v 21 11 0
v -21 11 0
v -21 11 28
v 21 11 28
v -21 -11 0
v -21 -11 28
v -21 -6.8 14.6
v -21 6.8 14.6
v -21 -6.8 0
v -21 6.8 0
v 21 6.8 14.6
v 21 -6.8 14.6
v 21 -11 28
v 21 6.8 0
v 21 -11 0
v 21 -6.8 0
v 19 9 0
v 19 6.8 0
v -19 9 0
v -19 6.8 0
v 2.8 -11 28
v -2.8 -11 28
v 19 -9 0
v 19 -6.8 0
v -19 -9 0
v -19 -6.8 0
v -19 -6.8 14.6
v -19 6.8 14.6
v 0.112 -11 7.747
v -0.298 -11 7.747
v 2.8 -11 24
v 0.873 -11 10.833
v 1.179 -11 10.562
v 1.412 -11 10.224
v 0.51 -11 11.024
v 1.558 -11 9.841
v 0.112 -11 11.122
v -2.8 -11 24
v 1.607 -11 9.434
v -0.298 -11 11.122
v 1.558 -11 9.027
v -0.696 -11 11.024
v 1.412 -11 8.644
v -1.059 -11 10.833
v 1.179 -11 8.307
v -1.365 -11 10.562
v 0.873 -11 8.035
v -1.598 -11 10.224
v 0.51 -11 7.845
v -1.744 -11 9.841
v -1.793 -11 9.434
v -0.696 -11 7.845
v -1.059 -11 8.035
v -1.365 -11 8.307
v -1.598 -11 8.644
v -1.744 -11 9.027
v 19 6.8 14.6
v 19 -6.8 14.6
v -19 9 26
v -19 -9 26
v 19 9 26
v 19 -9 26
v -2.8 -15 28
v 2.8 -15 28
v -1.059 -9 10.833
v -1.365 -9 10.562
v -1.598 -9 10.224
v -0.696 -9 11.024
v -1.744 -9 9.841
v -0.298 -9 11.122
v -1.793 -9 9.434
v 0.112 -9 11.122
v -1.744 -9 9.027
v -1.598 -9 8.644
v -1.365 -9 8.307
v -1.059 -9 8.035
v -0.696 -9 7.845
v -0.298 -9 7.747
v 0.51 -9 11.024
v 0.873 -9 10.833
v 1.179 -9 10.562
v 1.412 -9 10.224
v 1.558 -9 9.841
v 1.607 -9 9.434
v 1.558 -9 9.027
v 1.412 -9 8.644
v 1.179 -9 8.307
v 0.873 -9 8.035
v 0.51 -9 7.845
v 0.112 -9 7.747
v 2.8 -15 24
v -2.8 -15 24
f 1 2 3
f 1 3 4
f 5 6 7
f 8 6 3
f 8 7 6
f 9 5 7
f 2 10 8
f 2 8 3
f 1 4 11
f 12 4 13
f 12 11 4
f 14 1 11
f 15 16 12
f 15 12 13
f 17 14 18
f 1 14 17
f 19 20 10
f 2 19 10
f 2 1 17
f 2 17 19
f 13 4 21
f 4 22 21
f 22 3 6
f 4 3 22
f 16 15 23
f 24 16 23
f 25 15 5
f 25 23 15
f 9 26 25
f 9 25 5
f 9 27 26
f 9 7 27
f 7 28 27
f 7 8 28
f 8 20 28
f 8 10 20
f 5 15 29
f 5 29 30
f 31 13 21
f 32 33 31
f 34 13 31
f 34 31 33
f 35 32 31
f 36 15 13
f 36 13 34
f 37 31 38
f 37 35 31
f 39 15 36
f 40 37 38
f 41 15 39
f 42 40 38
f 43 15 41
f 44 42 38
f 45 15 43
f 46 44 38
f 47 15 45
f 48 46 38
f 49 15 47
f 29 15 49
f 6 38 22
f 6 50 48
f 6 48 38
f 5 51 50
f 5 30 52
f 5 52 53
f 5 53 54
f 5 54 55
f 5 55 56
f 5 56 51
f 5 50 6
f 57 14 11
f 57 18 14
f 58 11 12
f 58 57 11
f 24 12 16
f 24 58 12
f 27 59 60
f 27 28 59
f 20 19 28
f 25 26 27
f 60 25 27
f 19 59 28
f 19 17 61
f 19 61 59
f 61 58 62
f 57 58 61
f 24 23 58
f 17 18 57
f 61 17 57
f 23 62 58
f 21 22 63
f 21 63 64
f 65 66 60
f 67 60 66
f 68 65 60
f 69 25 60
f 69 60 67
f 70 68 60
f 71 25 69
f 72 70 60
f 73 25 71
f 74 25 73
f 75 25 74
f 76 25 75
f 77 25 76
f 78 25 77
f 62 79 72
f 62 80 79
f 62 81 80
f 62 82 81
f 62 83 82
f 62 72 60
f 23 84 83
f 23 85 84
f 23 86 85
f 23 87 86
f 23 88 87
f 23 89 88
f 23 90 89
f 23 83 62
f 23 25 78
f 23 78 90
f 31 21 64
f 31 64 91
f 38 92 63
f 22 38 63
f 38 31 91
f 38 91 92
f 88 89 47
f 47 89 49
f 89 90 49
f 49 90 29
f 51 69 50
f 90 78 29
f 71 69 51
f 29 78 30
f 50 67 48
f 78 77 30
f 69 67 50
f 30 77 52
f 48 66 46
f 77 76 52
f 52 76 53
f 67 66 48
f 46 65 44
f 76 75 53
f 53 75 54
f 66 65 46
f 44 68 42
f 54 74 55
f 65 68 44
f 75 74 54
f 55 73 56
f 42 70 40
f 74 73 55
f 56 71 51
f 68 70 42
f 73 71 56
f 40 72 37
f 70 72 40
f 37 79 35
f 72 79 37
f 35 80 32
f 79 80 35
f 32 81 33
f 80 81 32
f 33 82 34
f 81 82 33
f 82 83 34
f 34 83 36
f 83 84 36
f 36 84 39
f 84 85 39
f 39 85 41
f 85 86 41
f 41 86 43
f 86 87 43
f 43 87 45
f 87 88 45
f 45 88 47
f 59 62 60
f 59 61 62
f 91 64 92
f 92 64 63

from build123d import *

# Parameters (mm, degrees)
SKETCH_W        = 42
SKETCH_H        = 22
PAD_DEPTH       = 28
SKETCH001_W     = 38
SKETCH001_H     = 18
POCKET_DEPTH    = 26
SKETCH002_W     = 5.6
SKETCH002_H     = 4
PAD001_DEPTH    = 4
SKETCH003_W     = 13.6
SKETCH003_H     = 14.6
POCKET001_DEPTH = 45
SKETCH004_R     = 1.7
POCKET002_DEPTH = 5


with BuildPart() as part:
    # Sketch → Pad (new body)
    with BuildSketch(Plane.XY):
        Rectangle(SKETCH_W, SKETCH_H)
    extrude(amount=PAD_DEPTH)

    # Sketch001 (on Face5 of Pad) → Pocket (cut)
    with BuildSketch(Plane(origin=(0, 0, 0), x_dir=(1, 0, 0), z_dir=(0, 0, -1))):
        Rectangle(SKETCH001_W, SKETCH001_H)
    extrude(amount=-POCKET_DEPTH, mode=Mode.SUBTRACT)

    # Sketch002 (on Face6 of Pocket) → Pad001 (join)
    with BuildSketch(Plane.XZ.offset(11)):
        with Locations((0, 26)):
            Rectangle(SKETCH002_W, SKETCH002_H)
    extrude(amount=PAD001_DEPTH)

    # Sketch003 (on Face2 of Pad001) → Pocket001 (cut)
    with BuildSketch(Plane(origin=(-21, 0, 0), x_dir=(0, -1, 0), z_dir=(-1, 0, 0))):
        with Locations((0, 7.3)):
            Rectangle(SKETCH003_W, SKETCH003_H)
    extrude(amount=-POCKET001_DEPTH, mode=Mode.SUBTRACT)

    # Sketch004 (on Face18 of Pocket001) → Pocket002 (cut)
    with BuildSketch(Plane(origin=(0, -9, 0), x_dir=(-1, 0, 0), z_dir=(0, 1, 0))):
        with Locations((0.093022, 9.434252)):
            Circle(SKETCH004_R)
    extrude(amount=-POCKET002_DEPTH, mode=Mode.SUBTRACT)


solid = part.part
